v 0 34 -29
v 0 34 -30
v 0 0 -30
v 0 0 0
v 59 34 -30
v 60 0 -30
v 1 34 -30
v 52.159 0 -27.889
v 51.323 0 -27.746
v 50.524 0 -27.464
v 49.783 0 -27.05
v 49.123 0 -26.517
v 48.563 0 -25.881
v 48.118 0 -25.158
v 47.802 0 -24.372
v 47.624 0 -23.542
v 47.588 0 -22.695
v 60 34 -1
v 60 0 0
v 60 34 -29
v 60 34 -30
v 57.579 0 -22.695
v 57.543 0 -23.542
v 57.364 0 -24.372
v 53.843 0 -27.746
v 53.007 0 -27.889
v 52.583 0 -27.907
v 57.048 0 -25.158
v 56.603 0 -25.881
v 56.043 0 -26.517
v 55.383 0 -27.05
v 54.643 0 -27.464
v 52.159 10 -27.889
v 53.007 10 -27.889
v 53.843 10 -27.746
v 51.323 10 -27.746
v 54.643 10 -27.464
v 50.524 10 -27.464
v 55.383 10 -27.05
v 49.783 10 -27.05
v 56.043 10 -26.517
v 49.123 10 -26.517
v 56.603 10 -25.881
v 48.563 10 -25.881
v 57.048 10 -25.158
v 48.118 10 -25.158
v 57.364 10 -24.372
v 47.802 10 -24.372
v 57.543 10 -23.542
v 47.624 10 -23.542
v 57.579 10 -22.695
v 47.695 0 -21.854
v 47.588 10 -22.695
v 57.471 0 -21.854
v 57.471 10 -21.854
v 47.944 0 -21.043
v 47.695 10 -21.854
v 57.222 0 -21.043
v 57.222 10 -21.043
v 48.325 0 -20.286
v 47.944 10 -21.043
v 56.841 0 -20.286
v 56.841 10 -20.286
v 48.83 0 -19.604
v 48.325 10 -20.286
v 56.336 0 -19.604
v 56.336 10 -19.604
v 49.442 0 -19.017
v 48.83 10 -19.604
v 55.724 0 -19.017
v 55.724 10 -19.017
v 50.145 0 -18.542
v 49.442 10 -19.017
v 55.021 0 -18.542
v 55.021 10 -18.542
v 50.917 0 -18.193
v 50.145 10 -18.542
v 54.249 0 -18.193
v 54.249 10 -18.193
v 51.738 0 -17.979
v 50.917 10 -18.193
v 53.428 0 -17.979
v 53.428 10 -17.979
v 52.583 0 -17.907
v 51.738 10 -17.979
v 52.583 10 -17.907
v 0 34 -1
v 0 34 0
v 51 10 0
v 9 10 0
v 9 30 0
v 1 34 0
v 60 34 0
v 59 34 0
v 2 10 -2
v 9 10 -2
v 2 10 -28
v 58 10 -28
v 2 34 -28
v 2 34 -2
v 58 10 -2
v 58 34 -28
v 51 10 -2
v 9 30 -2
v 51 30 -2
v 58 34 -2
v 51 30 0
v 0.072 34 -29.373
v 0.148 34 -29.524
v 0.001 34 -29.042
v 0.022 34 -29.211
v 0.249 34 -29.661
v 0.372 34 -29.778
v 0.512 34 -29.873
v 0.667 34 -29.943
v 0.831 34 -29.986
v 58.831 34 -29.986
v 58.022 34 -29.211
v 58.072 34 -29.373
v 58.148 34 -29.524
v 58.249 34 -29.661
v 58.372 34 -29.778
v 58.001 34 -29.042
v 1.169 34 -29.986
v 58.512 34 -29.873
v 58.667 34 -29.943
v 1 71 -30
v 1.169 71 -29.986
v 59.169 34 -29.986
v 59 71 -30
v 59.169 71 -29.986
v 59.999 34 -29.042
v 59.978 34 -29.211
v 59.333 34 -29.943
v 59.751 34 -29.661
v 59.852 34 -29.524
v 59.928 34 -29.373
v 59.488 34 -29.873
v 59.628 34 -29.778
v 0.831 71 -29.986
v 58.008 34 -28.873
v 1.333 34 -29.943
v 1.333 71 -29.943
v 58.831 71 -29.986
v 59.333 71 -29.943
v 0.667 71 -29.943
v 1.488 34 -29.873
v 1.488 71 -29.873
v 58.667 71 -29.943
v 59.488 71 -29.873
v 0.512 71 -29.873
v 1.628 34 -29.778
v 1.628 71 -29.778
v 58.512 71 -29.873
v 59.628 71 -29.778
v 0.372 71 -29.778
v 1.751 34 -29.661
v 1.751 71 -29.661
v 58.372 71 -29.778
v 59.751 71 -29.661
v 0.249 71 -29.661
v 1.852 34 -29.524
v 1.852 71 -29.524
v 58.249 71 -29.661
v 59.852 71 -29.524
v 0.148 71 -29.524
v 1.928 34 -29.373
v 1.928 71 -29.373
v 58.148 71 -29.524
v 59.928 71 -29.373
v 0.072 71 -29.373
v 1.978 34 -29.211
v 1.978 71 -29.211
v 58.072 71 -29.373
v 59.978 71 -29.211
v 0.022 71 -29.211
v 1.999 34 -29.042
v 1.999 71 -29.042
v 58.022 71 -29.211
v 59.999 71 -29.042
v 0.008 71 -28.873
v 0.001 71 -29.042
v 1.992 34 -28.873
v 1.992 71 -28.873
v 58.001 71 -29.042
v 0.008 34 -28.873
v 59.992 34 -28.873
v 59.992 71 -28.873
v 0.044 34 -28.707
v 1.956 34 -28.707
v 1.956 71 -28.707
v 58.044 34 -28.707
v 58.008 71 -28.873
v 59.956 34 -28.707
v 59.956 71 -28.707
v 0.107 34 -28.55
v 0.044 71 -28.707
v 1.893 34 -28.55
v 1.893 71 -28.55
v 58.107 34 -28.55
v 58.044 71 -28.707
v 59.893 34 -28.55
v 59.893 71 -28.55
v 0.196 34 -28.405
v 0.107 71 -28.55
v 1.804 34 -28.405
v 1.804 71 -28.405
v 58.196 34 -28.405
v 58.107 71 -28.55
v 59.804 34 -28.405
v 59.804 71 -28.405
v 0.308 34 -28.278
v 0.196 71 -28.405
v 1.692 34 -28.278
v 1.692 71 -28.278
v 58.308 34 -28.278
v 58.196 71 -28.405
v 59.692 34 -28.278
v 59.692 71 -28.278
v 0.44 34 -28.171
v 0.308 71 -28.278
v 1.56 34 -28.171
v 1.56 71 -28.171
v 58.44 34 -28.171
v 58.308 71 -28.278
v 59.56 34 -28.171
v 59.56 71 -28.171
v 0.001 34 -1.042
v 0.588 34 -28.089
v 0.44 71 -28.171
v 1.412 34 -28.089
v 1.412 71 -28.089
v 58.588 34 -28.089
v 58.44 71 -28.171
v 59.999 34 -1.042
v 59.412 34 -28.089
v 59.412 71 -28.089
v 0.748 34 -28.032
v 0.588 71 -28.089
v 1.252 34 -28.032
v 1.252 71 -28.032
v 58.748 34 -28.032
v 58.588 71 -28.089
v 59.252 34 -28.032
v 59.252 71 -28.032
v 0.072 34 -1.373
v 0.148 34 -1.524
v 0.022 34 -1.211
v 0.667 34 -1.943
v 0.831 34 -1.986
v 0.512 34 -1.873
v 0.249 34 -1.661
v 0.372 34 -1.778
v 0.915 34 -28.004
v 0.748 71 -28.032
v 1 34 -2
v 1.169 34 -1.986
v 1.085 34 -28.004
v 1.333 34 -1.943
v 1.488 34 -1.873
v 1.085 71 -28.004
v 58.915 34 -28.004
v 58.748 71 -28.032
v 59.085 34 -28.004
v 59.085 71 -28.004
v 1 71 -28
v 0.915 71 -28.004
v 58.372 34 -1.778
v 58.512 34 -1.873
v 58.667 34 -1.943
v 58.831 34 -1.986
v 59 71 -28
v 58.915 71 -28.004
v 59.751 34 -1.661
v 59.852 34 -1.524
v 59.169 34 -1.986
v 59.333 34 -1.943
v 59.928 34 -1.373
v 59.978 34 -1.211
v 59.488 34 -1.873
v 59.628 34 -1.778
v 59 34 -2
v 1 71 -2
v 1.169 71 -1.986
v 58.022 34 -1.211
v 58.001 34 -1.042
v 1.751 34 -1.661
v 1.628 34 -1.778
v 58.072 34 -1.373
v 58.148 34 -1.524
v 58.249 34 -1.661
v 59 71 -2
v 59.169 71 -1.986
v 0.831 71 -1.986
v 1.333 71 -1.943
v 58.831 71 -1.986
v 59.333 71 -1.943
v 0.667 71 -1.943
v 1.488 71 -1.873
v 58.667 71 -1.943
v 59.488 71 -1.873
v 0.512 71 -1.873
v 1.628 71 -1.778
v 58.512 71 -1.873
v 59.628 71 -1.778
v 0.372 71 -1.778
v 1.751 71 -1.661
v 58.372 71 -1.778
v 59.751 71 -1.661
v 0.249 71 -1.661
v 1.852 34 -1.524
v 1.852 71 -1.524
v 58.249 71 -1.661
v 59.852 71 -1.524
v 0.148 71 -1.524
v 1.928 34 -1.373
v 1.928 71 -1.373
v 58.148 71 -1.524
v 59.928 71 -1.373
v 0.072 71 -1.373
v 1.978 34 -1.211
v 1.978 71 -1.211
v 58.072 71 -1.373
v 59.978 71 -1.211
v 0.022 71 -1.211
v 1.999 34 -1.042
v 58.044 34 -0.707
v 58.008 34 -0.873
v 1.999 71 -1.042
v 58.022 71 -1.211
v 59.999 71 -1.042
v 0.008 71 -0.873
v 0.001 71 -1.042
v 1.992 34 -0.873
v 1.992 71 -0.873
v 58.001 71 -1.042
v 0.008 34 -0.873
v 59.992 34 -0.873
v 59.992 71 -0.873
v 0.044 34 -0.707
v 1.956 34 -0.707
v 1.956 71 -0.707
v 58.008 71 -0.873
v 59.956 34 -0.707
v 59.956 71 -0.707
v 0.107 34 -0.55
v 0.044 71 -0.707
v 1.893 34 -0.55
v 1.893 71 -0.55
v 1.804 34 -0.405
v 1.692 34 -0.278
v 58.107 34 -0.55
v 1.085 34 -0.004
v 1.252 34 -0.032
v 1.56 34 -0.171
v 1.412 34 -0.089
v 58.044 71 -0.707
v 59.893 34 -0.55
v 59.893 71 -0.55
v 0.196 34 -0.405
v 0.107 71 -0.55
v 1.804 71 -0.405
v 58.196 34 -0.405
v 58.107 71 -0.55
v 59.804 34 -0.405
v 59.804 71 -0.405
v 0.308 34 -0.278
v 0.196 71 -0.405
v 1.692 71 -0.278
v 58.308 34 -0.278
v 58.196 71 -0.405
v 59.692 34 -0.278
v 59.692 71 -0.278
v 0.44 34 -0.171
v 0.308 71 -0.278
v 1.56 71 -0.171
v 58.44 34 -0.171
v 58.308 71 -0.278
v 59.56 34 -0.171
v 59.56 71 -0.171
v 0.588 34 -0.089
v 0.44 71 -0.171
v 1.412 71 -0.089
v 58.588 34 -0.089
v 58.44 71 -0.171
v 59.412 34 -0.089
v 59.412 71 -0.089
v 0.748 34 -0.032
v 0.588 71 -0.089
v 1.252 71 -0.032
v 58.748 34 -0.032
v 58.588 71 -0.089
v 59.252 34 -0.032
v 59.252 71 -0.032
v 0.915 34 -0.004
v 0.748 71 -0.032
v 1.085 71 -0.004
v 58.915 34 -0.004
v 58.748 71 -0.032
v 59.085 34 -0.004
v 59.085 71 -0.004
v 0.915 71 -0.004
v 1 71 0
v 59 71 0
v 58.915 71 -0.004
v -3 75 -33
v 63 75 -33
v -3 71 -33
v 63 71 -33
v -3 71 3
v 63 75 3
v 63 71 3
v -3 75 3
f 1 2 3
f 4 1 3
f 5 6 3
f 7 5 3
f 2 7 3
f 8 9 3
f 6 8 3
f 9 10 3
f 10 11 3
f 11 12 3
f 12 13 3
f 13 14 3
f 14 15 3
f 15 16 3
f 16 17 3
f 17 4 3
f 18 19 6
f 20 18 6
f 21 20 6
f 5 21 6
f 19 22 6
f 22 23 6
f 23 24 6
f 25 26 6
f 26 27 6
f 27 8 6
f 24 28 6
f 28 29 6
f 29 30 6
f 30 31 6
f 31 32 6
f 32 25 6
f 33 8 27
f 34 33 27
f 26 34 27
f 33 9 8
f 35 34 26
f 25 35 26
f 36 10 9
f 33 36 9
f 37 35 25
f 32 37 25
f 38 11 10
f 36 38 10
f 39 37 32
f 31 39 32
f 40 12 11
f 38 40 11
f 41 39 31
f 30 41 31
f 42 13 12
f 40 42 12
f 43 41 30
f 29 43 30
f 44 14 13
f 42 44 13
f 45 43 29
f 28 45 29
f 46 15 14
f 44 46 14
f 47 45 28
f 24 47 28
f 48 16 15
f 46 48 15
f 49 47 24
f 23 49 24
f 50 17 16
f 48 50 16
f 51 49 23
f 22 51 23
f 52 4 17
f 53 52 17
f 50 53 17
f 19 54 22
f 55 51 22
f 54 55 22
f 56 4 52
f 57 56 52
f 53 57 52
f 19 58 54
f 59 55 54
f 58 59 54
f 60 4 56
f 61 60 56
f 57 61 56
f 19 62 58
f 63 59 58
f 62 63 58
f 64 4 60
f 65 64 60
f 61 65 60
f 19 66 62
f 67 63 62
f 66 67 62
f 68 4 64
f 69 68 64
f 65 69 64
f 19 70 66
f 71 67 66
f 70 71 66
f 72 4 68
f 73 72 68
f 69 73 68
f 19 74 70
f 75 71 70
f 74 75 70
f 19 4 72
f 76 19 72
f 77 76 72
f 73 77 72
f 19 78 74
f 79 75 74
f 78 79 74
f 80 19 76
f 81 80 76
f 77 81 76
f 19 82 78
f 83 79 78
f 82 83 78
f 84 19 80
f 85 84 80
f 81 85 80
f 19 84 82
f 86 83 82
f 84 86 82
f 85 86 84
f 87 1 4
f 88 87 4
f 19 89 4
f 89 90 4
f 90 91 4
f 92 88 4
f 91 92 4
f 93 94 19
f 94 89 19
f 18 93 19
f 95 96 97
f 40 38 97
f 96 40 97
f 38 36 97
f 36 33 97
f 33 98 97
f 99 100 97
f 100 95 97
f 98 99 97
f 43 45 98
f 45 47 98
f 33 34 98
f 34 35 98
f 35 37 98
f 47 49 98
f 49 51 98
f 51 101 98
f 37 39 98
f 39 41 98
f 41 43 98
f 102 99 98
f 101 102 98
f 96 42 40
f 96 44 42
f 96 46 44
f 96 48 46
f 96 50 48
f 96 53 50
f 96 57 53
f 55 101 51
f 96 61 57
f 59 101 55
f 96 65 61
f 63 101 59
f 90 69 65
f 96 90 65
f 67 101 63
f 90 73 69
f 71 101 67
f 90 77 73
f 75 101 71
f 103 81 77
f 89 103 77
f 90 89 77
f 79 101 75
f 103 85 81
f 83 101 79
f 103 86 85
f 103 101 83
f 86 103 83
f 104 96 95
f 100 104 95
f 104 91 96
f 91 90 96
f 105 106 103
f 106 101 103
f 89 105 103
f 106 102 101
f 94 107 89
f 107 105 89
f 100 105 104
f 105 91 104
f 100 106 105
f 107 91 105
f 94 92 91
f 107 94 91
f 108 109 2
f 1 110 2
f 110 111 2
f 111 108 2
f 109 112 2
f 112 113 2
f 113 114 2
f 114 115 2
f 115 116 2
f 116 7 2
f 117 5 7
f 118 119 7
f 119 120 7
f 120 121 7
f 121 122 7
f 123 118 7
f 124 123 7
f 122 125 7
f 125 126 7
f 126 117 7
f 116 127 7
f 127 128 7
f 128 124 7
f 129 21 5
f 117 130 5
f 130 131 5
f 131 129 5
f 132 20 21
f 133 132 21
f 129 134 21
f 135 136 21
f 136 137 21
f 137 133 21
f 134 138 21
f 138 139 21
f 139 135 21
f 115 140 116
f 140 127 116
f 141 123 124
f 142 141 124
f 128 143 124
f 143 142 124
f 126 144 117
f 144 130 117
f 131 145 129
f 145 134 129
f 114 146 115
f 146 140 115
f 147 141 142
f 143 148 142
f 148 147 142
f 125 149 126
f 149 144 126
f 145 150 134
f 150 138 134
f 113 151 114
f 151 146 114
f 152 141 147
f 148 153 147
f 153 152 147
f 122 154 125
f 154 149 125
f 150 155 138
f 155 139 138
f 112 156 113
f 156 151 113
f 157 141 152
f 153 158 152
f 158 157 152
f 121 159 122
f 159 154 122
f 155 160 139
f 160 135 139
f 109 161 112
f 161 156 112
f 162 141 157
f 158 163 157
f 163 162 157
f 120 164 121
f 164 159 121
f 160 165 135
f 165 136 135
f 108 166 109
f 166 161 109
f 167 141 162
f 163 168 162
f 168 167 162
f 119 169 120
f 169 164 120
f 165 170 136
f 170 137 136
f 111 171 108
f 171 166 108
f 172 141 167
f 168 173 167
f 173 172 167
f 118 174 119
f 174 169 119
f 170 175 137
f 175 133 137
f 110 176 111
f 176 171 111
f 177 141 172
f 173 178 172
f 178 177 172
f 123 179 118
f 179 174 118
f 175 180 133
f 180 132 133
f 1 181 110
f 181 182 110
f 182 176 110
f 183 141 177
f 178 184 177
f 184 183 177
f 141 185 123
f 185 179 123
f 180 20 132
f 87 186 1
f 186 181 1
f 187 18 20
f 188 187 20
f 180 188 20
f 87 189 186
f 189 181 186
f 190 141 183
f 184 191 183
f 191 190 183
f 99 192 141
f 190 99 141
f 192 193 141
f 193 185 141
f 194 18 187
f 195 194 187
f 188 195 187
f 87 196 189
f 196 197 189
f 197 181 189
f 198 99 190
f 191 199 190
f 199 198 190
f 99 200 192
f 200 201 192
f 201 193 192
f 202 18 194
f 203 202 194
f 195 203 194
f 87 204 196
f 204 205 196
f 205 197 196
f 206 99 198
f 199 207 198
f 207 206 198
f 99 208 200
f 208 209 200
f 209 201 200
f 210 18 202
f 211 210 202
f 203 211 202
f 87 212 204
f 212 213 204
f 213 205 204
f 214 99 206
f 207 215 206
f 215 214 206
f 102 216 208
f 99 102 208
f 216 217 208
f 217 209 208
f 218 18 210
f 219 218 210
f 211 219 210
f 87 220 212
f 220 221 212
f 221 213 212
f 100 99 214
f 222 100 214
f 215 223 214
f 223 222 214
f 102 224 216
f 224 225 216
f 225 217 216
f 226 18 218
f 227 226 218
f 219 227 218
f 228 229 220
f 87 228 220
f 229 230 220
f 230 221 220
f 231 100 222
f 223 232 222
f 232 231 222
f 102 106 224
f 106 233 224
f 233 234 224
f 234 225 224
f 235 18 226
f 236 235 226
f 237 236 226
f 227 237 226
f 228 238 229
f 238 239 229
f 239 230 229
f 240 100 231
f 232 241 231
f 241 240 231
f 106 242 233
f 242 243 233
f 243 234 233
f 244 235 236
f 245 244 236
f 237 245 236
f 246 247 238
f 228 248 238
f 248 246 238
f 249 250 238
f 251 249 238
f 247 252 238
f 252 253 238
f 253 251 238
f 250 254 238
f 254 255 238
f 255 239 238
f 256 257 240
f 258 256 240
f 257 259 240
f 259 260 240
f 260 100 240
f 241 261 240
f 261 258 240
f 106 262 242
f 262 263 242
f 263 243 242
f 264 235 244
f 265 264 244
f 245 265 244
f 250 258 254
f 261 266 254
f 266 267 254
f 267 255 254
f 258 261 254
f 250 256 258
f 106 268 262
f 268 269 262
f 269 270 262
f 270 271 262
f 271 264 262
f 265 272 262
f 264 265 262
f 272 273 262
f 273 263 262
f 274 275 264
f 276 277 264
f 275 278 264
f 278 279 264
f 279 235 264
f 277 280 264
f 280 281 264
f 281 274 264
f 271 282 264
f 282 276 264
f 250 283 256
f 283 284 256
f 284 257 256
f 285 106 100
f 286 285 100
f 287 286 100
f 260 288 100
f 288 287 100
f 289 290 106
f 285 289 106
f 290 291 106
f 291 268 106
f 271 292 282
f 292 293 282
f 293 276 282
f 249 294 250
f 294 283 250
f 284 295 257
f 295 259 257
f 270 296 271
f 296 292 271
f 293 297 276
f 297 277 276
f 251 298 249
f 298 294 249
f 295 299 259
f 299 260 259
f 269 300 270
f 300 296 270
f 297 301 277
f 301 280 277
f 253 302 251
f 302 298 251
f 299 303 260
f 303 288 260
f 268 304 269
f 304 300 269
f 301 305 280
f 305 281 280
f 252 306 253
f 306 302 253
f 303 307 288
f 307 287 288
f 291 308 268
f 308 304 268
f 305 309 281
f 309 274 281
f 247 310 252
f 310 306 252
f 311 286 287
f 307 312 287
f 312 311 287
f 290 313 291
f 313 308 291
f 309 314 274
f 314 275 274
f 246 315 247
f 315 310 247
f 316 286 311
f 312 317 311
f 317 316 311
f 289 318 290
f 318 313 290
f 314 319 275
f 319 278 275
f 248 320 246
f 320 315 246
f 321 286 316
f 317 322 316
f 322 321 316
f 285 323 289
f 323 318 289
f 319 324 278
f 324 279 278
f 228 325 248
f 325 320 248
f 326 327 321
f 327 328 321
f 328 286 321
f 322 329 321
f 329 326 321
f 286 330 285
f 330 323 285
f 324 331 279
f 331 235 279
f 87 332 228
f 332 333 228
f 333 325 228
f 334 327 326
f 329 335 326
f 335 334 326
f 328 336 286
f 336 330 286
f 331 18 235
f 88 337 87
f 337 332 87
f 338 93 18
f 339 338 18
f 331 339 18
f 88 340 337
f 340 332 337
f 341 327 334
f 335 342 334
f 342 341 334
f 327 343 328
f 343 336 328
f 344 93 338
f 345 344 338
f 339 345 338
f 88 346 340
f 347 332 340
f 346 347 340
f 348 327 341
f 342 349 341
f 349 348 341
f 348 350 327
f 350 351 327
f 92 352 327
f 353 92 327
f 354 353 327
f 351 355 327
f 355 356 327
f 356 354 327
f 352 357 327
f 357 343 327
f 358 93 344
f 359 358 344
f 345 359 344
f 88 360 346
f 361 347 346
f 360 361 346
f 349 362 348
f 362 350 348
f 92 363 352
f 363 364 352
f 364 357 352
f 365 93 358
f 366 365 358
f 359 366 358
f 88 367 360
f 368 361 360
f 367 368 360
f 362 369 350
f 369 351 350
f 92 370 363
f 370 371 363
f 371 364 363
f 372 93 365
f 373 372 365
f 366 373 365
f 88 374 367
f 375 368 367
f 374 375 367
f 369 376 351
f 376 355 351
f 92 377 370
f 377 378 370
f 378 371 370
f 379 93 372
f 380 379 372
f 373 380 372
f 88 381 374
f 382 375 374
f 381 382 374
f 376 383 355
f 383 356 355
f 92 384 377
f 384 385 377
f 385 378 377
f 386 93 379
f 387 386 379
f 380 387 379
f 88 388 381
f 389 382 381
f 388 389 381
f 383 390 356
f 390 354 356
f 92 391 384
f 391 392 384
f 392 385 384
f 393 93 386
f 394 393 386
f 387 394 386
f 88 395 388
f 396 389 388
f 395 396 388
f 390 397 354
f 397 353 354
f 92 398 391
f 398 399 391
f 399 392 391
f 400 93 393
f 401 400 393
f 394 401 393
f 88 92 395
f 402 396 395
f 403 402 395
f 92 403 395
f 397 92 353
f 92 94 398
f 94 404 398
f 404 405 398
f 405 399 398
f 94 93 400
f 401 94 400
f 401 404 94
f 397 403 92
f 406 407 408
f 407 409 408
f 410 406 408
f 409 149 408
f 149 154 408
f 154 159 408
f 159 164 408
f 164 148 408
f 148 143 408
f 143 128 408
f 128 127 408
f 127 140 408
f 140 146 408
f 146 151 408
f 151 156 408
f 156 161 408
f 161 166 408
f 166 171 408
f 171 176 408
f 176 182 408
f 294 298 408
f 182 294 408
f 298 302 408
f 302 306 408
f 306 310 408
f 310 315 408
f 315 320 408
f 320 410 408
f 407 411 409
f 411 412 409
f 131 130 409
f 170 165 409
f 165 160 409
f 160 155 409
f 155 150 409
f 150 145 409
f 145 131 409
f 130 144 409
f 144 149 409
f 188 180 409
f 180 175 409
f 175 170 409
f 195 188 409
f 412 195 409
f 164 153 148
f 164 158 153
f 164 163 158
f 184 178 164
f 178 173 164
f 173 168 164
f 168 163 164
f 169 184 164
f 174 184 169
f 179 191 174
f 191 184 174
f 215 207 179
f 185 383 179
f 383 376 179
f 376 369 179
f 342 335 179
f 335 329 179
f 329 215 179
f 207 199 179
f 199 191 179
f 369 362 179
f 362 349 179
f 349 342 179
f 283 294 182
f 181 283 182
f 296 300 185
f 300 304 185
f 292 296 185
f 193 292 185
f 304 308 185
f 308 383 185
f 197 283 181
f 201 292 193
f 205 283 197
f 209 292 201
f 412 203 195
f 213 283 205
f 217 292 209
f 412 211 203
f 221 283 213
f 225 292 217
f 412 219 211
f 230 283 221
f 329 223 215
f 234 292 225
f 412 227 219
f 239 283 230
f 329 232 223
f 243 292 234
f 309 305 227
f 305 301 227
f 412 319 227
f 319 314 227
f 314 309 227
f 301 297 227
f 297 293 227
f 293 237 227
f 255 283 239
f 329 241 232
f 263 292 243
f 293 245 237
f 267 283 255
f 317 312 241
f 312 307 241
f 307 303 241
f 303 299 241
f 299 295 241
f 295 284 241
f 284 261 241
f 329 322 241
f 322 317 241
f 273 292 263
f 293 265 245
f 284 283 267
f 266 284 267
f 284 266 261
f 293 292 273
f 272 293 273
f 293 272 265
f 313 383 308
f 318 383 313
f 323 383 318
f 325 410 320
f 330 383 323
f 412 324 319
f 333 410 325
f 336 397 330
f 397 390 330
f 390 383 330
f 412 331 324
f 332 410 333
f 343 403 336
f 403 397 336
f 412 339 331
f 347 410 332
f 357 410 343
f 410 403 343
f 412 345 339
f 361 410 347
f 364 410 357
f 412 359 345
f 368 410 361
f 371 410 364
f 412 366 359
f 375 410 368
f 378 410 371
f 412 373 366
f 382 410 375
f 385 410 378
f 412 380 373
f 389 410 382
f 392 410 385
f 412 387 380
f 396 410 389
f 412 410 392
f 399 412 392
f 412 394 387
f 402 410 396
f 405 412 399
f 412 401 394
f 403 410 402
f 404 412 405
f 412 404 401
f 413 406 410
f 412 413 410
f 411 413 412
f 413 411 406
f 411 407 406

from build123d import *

# Parameters (mm, degrees)
SKETCH_1_W          = 60
SKETCH_1_H          = 30
EXTRUDE_1_DEPTH     = 10
EXTRUDE_2_DEPTH     = 20
SKETCH_3_W          = 60
SKETCH_3_H          = 30
SKETCH_3_W_2        = 56
SKETCH_3_H_2        = 26
EXTRUDE_3_DEPTH     = 4
SKETCH_4_R          = 1
EXTRUDE_4_DEPTH     = 37
SKETCH_5_W          = 66
SKETCH_5_H          = 36
EXTRUDE_5_DEPTH     = 4
CUT_EXTRUDE_1_REACH = 98.348
SKETCH_6_R          = 5


with BuildPart() as part:
    # 草图1 → 凸台-拉伸1 (new body)
    with BuildSketch(Plane(origin=(0, 0, 0), x_dir=(1, 0, 0), z_dir=(0, 1, 0))):
        with Locations((30, 15)):
            Rectangle(SKETCH_1_W, SKETCH_1_H)
    extrude(amount=EXTRUDE_1_DEPTH)

    # 草图2 → 凸台-拉伸2 (add)
    with BuildSketch(Plane(origin=(0, 10, 0), x_dir=(1, 0, 0), z_dir=(0, 1, 0))):
        Polygon((60, 0), (51, 0), (51, 2), (58, 2), (58, 28), (2, 28), (2, 2), (9, 2), (9, 0), (0, 0), (0, 30), (60, 30), align=None)
    extrude(amount=EXTRUDE_2_DEPTH)

    # 草图3 → 凸台-拉伸3 (add)
    with BuildSketch(Plane(origin=(0, 30, 0), x_dir=(1, 0, 0), z_dir=(0, 1, 0))):
        with Locations((30, 15)):
            Rectangle(SKETCH_3_W, SKETCH_3_H)
        with Locations((30, 15)):
            Rectangle(SKETCH_3_W_2, SKETCH_3_H_2, mode=Mode.SUBTRACT)
    extrude(amount=EXTRUDE_3_DEPTH)

    # 草图4 → 凸台-拉伸4 (add)
    with BuildSketch(Plane(origin=(0, 34, 0), x_dir=(1, 0, 0), z_dir=(0, 1, 0))):
        with Locations(Location((1, 29, 0), (0, 0, 90))):
            Circle(SKETCH_4_R)
        with Locations(Location((1, 1, 0), (0, 0, 270))):
            Circle(SKETCH_4_R)
        with Locations(Location((59, 29, 0), (0, 0, 90))):
            Circle(SKETCH_4_R)
        with Locations(Location((59, 1, 0), (0, 0, 270))):
            Circle(SKETCH_4_R)
    extrude(amount=EXTRUDE_4_DEPTH)

    # 草图5 → 凸台-拉伸5 (add)
    with BuildSketch(Plane(origin=(0, 71, 0), x_dir=(1, 0, 0), z_dir=(0, 1, 0))):
        with Locations((30, 15)):
            Rectangle(SKETCH_5_W, SKETCH_5_H)
    extrude(amount=EXTRUDE_5_DEPTH)

    # 草图6 → 切除-拉伸1 (cut, up to next)
    with BuildSketch(Plane(origin=(0, 10, 0), x_dir=(1, 0, 0), z_dir=(0, 1, 0)), mode=Mode.PRIVATE) as cut_extrude_1_sk1:
        with Locations(Location((52.583011954, 22.907401762, 0), (0, 0, 270))):
            Circle(SKETCH_6_R)
    cut_extrude_1_tool1 = extrude(cut_extrude_1_sk1.sketch, amount=-CUT_EXTRUDE_1_REACH, mode=Mode.PRIVATE) & part.part
    add(cut_extrude_1_tool1.solids().sort_by_distance((52.583012, 10, -22.907402))[0], mode=Mode.SUBTRACT)


solid = part.part
